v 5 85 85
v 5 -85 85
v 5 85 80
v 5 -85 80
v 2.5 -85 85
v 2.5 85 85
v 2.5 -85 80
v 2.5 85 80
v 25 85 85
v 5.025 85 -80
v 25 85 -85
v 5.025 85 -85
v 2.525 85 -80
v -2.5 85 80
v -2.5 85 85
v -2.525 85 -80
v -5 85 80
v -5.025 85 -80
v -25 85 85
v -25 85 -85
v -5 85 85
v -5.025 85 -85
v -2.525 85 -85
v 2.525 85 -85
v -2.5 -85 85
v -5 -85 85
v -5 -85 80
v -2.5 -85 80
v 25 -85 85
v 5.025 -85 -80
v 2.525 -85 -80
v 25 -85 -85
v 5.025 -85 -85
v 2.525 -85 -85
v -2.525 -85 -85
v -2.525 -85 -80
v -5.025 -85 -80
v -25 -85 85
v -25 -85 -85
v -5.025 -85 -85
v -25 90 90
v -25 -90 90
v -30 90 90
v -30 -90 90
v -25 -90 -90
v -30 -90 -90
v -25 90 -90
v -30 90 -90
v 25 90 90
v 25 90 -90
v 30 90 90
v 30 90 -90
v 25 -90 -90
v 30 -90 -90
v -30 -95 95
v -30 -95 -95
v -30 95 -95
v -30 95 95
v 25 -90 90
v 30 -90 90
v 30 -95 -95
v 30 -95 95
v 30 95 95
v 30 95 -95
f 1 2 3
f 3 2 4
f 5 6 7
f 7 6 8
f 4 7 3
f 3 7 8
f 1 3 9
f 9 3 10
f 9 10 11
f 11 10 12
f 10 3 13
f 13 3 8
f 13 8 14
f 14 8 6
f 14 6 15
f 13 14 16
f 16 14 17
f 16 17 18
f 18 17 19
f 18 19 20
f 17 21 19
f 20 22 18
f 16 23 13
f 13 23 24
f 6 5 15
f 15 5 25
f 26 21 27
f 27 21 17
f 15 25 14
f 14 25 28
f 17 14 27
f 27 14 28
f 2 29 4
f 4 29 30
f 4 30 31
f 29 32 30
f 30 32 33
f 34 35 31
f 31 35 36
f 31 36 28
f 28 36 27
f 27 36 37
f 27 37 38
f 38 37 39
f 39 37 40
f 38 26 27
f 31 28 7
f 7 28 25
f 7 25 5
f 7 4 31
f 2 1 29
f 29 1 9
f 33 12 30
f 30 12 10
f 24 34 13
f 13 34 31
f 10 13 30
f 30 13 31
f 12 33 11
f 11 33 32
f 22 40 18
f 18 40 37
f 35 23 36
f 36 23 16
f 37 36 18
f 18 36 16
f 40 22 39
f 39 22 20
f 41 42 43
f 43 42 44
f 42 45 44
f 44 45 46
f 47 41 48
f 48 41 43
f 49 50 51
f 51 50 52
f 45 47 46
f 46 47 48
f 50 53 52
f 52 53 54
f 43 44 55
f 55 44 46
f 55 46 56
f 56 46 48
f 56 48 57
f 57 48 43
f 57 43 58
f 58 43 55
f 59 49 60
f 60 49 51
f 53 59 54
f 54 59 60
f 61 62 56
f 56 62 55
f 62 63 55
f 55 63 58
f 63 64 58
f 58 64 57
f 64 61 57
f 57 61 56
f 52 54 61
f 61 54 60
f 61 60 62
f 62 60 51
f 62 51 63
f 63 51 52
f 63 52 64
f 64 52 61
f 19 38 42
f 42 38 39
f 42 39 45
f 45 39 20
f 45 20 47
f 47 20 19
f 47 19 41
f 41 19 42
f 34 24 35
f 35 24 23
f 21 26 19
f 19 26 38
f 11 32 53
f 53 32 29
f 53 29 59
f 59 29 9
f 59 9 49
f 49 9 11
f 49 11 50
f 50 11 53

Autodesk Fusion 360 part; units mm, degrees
sketch "Sketch1" plane through (0, 0, 0) normal (1, 0, 0) x (0, 1, 0)
  line L0 (90, -90) -> (90, 90)
  line L1 (-95, 95) -> (95, -95) construction
  line L2 (95, 95) -> (-95, 95)
  line L3 (85, 85) -> (-85, 85)
  line L4 (-85, -85) -> (85, -85)
  line L5 (85, -85) -> (85, 85)
  line L6 (-95, 95) -> (-95, -95)
  line L7 (0, 85) -> (0, -85) construction
  line L8 (-85, 85) -> (-85, -85)
  line L9 (95, 95) -> (-95, -95) construction
  line L10 (95, -95) -> (95, 95)
  line L11 (90, 90) -> (-90, 90)
  line L12 (-90, -90) -> (90, -90)
  line L13 (-85, 0) -> (85, 0) construction
  line L14 (-95, -95) -> (95, -95)
  line L15 (-90, 90) -> (-90, -90)
  dimension "d3" = -5
  dimension "d4" = -5
  dimension "d5" = 190
  dimension "d6" = 190
extrude "Extrude4" add sketch "Sketch1" along normal mid plane 50 contours L0 L11 L12 L15
extrude "Extrude5" add sketch "Sketch1" along normal mid plane 60 contours L2 L6 L10 L14
sketch "Sketch2" plane through (0, 0, -85) normal (0, 0, 1) x (-1, 0, 0)
  line L0 (25, 85) -> (-25, 85)
  line L1 (-25, 85) -> (-25, -85)
  line L2 (-25, -85) -> (25, -85)
  line L3 (25, -85) -> (25, 85)
  line L4 (-2.525, 85) -> (2.525, 85)
  line L5 (2.525, 85) -> (2.525, -85)
  line L6 (2.525, -85) -> (-2.525, -85)
  line L7 (-2.525, -85) -> (-2.525, 85)
  line L8 (-2.525, 85) -> (2.525, -85) construction
  line L9 (2.525, 85) -> (-2.525, -85) construction
  line L10 (5.025, 87.5) -> (5.025, -87.5)
  line L11 (5.025, -87.5) -> (-5.025, -87.5)
  line L12 (-5.025, -87.5) -> (-5.025, 87.5)
  line L13 (-5.025, 87.5) -> (5.025, 87.5)
  dimension "d39" = -2.5
  dimension "d40" = 5.05
extrude "Extrude6" add sketch "Sketch2" along normal blind 5 contours L0 L2 L5 L10 | L0 L2 L7 L12
sketch "Sketch3" plane through (0, 0, 85) normal (0, 0, -1) x (1, 0, 0)
  line L0 (-25, -85) -> (25, -85)
  line L1 (25, -85) -> (25, 85)
  line L2 (25, 85) -> (-25, 85)
  line L3 (-25, 85) -> (-25, -85)
  line L4 (-2.5, 85) -> (2.5, 85)
  line L5 (2.5, 85) -> (2.5, -85)
  line L6 (2.5, -85) -> (-2.5, -85)
  line L7 (-2.5, -85) -> (-2.5, 85)
  line L8 (-2.5, 85) -> (2.5, -85) construction
  line L9 (2.5, 85) -> (-2.5, -85) construction
  line L10 (5, 87.5) -> (5, -87.5)
  line L11 (5, -87.5) -> (-5, -87.5)
  line L12 (-5, -87.5) -> (-5, 87.5)
  line L13 (-5, 87.5) -> (5, 87.5)
  dimension "d43" = 5
  dimension "d44" = -2.5
extrude "Extrude7" add sketch "Sketch3" along normal blind 5 contours L0 L2 L7 L12 | L0 L2 L5 L10
equation "d6 = d5"
